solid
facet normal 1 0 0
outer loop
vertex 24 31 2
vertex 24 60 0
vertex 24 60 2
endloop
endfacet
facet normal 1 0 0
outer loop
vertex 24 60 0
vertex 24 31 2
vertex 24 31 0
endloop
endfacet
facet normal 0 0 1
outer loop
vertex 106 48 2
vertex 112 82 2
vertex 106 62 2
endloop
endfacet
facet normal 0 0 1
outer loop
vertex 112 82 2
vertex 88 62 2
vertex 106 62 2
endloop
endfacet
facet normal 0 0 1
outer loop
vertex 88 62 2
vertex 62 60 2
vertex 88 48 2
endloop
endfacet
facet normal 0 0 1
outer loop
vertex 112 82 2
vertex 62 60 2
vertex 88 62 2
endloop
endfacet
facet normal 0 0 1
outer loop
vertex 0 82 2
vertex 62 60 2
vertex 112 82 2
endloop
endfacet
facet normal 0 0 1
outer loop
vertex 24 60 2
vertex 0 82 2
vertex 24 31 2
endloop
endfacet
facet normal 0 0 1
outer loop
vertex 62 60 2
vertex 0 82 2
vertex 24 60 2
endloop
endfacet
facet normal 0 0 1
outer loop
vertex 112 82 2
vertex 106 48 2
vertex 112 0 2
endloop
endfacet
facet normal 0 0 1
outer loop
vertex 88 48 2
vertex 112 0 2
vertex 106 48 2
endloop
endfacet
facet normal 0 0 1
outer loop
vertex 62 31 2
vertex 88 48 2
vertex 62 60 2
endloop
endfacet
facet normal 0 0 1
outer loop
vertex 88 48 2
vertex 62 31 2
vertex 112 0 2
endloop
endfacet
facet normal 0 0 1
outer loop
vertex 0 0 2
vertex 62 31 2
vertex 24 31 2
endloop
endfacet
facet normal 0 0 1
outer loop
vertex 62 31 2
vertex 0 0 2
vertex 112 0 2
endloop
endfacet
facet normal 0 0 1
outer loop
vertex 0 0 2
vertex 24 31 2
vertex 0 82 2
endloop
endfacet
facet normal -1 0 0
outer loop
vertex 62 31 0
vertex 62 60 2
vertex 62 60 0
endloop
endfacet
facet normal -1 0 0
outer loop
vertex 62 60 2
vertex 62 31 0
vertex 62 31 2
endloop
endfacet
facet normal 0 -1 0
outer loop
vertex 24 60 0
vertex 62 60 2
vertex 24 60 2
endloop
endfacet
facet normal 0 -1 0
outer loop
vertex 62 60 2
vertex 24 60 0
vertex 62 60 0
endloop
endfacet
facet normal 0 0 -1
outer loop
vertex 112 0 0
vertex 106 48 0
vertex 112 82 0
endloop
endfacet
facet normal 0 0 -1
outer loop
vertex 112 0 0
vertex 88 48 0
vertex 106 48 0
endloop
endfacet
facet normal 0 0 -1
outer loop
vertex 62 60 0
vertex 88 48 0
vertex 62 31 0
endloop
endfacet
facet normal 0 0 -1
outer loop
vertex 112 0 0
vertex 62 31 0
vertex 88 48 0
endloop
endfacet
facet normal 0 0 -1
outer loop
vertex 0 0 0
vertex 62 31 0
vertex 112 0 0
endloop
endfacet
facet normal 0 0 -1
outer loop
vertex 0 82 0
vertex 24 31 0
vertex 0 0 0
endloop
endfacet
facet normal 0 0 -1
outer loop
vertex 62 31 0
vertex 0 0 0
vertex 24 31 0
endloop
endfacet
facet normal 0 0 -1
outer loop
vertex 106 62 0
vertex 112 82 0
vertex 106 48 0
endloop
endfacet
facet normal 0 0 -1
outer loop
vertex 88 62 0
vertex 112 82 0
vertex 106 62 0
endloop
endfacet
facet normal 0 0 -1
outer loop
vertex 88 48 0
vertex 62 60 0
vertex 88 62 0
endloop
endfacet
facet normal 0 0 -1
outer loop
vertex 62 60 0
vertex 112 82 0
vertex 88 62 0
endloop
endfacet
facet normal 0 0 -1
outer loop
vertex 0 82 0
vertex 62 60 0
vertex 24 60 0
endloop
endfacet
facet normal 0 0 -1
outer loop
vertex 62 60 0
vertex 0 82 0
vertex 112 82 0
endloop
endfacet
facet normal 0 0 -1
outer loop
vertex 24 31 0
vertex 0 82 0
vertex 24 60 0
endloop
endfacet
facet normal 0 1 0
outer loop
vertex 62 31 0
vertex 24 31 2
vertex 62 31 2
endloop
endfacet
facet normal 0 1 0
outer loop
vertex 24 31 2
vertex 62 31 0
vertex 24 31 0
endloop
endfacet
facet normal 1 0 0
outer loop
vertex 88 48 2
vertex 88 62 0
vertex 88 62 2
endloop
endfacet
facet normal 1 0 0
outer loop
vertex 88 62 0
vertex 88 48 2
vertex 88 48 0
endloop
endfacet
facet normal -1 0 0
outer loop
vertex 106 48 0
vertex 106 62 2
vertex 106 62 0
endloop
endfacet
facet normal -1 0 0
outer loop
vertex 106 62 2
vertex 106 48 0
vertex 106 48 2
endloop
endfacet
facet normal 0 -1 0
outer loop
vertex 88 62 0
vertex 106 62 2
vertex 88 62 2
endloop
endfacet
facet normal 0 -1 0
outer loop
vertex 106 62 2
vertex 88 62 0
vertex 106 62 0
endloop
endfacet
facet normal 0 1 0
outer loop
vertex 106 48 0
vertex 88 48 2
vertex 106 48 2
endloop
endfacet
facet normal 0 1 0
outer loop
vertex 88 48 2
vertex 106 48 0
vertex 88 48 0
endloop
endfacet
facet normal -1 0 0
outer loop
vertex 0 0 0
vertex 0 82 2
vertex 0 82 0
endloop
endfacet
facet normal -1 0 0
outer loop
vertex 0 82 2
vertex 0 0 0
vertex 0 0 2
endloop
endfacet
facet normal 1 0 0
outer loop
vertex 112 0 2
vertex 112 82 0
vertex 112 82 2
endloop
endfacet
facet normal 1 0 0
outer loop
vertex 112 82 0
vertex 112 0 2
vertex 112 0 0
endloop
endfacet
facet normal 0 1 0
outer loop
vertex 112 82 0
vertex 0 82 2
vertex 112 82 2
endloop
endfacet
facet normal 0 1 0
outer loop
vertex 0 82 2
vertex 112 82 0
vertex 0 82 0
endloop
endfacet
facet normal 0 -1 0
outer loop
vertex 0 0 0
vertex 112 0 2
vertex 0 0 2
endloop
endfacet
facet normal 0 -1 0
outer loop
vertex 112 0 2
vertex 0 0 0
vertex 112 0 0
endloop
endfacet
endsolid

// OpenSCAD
difference(){
    cube([112,82,2]);
union(){
    translate([24,31,0]) cube([38,29,2]);
    translate([88,48,0]) cube([18,14,2]);
}
}
